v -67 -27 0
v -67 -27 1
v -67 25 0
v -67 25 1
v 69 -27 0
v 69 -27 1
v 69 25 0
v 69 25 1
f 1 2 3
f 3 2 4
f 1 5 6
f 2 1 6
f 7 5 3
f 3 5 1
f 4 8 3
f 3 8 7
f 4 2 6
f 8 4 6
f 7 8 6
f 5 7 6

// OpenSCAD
length = 136;
height = 52;
width = 1;

rotate([90, 0, 0]) {
	translate([1 - (length / 2), 0, 1 - (height / 2)]) {
		cube([length, width, height]);
	}
}
